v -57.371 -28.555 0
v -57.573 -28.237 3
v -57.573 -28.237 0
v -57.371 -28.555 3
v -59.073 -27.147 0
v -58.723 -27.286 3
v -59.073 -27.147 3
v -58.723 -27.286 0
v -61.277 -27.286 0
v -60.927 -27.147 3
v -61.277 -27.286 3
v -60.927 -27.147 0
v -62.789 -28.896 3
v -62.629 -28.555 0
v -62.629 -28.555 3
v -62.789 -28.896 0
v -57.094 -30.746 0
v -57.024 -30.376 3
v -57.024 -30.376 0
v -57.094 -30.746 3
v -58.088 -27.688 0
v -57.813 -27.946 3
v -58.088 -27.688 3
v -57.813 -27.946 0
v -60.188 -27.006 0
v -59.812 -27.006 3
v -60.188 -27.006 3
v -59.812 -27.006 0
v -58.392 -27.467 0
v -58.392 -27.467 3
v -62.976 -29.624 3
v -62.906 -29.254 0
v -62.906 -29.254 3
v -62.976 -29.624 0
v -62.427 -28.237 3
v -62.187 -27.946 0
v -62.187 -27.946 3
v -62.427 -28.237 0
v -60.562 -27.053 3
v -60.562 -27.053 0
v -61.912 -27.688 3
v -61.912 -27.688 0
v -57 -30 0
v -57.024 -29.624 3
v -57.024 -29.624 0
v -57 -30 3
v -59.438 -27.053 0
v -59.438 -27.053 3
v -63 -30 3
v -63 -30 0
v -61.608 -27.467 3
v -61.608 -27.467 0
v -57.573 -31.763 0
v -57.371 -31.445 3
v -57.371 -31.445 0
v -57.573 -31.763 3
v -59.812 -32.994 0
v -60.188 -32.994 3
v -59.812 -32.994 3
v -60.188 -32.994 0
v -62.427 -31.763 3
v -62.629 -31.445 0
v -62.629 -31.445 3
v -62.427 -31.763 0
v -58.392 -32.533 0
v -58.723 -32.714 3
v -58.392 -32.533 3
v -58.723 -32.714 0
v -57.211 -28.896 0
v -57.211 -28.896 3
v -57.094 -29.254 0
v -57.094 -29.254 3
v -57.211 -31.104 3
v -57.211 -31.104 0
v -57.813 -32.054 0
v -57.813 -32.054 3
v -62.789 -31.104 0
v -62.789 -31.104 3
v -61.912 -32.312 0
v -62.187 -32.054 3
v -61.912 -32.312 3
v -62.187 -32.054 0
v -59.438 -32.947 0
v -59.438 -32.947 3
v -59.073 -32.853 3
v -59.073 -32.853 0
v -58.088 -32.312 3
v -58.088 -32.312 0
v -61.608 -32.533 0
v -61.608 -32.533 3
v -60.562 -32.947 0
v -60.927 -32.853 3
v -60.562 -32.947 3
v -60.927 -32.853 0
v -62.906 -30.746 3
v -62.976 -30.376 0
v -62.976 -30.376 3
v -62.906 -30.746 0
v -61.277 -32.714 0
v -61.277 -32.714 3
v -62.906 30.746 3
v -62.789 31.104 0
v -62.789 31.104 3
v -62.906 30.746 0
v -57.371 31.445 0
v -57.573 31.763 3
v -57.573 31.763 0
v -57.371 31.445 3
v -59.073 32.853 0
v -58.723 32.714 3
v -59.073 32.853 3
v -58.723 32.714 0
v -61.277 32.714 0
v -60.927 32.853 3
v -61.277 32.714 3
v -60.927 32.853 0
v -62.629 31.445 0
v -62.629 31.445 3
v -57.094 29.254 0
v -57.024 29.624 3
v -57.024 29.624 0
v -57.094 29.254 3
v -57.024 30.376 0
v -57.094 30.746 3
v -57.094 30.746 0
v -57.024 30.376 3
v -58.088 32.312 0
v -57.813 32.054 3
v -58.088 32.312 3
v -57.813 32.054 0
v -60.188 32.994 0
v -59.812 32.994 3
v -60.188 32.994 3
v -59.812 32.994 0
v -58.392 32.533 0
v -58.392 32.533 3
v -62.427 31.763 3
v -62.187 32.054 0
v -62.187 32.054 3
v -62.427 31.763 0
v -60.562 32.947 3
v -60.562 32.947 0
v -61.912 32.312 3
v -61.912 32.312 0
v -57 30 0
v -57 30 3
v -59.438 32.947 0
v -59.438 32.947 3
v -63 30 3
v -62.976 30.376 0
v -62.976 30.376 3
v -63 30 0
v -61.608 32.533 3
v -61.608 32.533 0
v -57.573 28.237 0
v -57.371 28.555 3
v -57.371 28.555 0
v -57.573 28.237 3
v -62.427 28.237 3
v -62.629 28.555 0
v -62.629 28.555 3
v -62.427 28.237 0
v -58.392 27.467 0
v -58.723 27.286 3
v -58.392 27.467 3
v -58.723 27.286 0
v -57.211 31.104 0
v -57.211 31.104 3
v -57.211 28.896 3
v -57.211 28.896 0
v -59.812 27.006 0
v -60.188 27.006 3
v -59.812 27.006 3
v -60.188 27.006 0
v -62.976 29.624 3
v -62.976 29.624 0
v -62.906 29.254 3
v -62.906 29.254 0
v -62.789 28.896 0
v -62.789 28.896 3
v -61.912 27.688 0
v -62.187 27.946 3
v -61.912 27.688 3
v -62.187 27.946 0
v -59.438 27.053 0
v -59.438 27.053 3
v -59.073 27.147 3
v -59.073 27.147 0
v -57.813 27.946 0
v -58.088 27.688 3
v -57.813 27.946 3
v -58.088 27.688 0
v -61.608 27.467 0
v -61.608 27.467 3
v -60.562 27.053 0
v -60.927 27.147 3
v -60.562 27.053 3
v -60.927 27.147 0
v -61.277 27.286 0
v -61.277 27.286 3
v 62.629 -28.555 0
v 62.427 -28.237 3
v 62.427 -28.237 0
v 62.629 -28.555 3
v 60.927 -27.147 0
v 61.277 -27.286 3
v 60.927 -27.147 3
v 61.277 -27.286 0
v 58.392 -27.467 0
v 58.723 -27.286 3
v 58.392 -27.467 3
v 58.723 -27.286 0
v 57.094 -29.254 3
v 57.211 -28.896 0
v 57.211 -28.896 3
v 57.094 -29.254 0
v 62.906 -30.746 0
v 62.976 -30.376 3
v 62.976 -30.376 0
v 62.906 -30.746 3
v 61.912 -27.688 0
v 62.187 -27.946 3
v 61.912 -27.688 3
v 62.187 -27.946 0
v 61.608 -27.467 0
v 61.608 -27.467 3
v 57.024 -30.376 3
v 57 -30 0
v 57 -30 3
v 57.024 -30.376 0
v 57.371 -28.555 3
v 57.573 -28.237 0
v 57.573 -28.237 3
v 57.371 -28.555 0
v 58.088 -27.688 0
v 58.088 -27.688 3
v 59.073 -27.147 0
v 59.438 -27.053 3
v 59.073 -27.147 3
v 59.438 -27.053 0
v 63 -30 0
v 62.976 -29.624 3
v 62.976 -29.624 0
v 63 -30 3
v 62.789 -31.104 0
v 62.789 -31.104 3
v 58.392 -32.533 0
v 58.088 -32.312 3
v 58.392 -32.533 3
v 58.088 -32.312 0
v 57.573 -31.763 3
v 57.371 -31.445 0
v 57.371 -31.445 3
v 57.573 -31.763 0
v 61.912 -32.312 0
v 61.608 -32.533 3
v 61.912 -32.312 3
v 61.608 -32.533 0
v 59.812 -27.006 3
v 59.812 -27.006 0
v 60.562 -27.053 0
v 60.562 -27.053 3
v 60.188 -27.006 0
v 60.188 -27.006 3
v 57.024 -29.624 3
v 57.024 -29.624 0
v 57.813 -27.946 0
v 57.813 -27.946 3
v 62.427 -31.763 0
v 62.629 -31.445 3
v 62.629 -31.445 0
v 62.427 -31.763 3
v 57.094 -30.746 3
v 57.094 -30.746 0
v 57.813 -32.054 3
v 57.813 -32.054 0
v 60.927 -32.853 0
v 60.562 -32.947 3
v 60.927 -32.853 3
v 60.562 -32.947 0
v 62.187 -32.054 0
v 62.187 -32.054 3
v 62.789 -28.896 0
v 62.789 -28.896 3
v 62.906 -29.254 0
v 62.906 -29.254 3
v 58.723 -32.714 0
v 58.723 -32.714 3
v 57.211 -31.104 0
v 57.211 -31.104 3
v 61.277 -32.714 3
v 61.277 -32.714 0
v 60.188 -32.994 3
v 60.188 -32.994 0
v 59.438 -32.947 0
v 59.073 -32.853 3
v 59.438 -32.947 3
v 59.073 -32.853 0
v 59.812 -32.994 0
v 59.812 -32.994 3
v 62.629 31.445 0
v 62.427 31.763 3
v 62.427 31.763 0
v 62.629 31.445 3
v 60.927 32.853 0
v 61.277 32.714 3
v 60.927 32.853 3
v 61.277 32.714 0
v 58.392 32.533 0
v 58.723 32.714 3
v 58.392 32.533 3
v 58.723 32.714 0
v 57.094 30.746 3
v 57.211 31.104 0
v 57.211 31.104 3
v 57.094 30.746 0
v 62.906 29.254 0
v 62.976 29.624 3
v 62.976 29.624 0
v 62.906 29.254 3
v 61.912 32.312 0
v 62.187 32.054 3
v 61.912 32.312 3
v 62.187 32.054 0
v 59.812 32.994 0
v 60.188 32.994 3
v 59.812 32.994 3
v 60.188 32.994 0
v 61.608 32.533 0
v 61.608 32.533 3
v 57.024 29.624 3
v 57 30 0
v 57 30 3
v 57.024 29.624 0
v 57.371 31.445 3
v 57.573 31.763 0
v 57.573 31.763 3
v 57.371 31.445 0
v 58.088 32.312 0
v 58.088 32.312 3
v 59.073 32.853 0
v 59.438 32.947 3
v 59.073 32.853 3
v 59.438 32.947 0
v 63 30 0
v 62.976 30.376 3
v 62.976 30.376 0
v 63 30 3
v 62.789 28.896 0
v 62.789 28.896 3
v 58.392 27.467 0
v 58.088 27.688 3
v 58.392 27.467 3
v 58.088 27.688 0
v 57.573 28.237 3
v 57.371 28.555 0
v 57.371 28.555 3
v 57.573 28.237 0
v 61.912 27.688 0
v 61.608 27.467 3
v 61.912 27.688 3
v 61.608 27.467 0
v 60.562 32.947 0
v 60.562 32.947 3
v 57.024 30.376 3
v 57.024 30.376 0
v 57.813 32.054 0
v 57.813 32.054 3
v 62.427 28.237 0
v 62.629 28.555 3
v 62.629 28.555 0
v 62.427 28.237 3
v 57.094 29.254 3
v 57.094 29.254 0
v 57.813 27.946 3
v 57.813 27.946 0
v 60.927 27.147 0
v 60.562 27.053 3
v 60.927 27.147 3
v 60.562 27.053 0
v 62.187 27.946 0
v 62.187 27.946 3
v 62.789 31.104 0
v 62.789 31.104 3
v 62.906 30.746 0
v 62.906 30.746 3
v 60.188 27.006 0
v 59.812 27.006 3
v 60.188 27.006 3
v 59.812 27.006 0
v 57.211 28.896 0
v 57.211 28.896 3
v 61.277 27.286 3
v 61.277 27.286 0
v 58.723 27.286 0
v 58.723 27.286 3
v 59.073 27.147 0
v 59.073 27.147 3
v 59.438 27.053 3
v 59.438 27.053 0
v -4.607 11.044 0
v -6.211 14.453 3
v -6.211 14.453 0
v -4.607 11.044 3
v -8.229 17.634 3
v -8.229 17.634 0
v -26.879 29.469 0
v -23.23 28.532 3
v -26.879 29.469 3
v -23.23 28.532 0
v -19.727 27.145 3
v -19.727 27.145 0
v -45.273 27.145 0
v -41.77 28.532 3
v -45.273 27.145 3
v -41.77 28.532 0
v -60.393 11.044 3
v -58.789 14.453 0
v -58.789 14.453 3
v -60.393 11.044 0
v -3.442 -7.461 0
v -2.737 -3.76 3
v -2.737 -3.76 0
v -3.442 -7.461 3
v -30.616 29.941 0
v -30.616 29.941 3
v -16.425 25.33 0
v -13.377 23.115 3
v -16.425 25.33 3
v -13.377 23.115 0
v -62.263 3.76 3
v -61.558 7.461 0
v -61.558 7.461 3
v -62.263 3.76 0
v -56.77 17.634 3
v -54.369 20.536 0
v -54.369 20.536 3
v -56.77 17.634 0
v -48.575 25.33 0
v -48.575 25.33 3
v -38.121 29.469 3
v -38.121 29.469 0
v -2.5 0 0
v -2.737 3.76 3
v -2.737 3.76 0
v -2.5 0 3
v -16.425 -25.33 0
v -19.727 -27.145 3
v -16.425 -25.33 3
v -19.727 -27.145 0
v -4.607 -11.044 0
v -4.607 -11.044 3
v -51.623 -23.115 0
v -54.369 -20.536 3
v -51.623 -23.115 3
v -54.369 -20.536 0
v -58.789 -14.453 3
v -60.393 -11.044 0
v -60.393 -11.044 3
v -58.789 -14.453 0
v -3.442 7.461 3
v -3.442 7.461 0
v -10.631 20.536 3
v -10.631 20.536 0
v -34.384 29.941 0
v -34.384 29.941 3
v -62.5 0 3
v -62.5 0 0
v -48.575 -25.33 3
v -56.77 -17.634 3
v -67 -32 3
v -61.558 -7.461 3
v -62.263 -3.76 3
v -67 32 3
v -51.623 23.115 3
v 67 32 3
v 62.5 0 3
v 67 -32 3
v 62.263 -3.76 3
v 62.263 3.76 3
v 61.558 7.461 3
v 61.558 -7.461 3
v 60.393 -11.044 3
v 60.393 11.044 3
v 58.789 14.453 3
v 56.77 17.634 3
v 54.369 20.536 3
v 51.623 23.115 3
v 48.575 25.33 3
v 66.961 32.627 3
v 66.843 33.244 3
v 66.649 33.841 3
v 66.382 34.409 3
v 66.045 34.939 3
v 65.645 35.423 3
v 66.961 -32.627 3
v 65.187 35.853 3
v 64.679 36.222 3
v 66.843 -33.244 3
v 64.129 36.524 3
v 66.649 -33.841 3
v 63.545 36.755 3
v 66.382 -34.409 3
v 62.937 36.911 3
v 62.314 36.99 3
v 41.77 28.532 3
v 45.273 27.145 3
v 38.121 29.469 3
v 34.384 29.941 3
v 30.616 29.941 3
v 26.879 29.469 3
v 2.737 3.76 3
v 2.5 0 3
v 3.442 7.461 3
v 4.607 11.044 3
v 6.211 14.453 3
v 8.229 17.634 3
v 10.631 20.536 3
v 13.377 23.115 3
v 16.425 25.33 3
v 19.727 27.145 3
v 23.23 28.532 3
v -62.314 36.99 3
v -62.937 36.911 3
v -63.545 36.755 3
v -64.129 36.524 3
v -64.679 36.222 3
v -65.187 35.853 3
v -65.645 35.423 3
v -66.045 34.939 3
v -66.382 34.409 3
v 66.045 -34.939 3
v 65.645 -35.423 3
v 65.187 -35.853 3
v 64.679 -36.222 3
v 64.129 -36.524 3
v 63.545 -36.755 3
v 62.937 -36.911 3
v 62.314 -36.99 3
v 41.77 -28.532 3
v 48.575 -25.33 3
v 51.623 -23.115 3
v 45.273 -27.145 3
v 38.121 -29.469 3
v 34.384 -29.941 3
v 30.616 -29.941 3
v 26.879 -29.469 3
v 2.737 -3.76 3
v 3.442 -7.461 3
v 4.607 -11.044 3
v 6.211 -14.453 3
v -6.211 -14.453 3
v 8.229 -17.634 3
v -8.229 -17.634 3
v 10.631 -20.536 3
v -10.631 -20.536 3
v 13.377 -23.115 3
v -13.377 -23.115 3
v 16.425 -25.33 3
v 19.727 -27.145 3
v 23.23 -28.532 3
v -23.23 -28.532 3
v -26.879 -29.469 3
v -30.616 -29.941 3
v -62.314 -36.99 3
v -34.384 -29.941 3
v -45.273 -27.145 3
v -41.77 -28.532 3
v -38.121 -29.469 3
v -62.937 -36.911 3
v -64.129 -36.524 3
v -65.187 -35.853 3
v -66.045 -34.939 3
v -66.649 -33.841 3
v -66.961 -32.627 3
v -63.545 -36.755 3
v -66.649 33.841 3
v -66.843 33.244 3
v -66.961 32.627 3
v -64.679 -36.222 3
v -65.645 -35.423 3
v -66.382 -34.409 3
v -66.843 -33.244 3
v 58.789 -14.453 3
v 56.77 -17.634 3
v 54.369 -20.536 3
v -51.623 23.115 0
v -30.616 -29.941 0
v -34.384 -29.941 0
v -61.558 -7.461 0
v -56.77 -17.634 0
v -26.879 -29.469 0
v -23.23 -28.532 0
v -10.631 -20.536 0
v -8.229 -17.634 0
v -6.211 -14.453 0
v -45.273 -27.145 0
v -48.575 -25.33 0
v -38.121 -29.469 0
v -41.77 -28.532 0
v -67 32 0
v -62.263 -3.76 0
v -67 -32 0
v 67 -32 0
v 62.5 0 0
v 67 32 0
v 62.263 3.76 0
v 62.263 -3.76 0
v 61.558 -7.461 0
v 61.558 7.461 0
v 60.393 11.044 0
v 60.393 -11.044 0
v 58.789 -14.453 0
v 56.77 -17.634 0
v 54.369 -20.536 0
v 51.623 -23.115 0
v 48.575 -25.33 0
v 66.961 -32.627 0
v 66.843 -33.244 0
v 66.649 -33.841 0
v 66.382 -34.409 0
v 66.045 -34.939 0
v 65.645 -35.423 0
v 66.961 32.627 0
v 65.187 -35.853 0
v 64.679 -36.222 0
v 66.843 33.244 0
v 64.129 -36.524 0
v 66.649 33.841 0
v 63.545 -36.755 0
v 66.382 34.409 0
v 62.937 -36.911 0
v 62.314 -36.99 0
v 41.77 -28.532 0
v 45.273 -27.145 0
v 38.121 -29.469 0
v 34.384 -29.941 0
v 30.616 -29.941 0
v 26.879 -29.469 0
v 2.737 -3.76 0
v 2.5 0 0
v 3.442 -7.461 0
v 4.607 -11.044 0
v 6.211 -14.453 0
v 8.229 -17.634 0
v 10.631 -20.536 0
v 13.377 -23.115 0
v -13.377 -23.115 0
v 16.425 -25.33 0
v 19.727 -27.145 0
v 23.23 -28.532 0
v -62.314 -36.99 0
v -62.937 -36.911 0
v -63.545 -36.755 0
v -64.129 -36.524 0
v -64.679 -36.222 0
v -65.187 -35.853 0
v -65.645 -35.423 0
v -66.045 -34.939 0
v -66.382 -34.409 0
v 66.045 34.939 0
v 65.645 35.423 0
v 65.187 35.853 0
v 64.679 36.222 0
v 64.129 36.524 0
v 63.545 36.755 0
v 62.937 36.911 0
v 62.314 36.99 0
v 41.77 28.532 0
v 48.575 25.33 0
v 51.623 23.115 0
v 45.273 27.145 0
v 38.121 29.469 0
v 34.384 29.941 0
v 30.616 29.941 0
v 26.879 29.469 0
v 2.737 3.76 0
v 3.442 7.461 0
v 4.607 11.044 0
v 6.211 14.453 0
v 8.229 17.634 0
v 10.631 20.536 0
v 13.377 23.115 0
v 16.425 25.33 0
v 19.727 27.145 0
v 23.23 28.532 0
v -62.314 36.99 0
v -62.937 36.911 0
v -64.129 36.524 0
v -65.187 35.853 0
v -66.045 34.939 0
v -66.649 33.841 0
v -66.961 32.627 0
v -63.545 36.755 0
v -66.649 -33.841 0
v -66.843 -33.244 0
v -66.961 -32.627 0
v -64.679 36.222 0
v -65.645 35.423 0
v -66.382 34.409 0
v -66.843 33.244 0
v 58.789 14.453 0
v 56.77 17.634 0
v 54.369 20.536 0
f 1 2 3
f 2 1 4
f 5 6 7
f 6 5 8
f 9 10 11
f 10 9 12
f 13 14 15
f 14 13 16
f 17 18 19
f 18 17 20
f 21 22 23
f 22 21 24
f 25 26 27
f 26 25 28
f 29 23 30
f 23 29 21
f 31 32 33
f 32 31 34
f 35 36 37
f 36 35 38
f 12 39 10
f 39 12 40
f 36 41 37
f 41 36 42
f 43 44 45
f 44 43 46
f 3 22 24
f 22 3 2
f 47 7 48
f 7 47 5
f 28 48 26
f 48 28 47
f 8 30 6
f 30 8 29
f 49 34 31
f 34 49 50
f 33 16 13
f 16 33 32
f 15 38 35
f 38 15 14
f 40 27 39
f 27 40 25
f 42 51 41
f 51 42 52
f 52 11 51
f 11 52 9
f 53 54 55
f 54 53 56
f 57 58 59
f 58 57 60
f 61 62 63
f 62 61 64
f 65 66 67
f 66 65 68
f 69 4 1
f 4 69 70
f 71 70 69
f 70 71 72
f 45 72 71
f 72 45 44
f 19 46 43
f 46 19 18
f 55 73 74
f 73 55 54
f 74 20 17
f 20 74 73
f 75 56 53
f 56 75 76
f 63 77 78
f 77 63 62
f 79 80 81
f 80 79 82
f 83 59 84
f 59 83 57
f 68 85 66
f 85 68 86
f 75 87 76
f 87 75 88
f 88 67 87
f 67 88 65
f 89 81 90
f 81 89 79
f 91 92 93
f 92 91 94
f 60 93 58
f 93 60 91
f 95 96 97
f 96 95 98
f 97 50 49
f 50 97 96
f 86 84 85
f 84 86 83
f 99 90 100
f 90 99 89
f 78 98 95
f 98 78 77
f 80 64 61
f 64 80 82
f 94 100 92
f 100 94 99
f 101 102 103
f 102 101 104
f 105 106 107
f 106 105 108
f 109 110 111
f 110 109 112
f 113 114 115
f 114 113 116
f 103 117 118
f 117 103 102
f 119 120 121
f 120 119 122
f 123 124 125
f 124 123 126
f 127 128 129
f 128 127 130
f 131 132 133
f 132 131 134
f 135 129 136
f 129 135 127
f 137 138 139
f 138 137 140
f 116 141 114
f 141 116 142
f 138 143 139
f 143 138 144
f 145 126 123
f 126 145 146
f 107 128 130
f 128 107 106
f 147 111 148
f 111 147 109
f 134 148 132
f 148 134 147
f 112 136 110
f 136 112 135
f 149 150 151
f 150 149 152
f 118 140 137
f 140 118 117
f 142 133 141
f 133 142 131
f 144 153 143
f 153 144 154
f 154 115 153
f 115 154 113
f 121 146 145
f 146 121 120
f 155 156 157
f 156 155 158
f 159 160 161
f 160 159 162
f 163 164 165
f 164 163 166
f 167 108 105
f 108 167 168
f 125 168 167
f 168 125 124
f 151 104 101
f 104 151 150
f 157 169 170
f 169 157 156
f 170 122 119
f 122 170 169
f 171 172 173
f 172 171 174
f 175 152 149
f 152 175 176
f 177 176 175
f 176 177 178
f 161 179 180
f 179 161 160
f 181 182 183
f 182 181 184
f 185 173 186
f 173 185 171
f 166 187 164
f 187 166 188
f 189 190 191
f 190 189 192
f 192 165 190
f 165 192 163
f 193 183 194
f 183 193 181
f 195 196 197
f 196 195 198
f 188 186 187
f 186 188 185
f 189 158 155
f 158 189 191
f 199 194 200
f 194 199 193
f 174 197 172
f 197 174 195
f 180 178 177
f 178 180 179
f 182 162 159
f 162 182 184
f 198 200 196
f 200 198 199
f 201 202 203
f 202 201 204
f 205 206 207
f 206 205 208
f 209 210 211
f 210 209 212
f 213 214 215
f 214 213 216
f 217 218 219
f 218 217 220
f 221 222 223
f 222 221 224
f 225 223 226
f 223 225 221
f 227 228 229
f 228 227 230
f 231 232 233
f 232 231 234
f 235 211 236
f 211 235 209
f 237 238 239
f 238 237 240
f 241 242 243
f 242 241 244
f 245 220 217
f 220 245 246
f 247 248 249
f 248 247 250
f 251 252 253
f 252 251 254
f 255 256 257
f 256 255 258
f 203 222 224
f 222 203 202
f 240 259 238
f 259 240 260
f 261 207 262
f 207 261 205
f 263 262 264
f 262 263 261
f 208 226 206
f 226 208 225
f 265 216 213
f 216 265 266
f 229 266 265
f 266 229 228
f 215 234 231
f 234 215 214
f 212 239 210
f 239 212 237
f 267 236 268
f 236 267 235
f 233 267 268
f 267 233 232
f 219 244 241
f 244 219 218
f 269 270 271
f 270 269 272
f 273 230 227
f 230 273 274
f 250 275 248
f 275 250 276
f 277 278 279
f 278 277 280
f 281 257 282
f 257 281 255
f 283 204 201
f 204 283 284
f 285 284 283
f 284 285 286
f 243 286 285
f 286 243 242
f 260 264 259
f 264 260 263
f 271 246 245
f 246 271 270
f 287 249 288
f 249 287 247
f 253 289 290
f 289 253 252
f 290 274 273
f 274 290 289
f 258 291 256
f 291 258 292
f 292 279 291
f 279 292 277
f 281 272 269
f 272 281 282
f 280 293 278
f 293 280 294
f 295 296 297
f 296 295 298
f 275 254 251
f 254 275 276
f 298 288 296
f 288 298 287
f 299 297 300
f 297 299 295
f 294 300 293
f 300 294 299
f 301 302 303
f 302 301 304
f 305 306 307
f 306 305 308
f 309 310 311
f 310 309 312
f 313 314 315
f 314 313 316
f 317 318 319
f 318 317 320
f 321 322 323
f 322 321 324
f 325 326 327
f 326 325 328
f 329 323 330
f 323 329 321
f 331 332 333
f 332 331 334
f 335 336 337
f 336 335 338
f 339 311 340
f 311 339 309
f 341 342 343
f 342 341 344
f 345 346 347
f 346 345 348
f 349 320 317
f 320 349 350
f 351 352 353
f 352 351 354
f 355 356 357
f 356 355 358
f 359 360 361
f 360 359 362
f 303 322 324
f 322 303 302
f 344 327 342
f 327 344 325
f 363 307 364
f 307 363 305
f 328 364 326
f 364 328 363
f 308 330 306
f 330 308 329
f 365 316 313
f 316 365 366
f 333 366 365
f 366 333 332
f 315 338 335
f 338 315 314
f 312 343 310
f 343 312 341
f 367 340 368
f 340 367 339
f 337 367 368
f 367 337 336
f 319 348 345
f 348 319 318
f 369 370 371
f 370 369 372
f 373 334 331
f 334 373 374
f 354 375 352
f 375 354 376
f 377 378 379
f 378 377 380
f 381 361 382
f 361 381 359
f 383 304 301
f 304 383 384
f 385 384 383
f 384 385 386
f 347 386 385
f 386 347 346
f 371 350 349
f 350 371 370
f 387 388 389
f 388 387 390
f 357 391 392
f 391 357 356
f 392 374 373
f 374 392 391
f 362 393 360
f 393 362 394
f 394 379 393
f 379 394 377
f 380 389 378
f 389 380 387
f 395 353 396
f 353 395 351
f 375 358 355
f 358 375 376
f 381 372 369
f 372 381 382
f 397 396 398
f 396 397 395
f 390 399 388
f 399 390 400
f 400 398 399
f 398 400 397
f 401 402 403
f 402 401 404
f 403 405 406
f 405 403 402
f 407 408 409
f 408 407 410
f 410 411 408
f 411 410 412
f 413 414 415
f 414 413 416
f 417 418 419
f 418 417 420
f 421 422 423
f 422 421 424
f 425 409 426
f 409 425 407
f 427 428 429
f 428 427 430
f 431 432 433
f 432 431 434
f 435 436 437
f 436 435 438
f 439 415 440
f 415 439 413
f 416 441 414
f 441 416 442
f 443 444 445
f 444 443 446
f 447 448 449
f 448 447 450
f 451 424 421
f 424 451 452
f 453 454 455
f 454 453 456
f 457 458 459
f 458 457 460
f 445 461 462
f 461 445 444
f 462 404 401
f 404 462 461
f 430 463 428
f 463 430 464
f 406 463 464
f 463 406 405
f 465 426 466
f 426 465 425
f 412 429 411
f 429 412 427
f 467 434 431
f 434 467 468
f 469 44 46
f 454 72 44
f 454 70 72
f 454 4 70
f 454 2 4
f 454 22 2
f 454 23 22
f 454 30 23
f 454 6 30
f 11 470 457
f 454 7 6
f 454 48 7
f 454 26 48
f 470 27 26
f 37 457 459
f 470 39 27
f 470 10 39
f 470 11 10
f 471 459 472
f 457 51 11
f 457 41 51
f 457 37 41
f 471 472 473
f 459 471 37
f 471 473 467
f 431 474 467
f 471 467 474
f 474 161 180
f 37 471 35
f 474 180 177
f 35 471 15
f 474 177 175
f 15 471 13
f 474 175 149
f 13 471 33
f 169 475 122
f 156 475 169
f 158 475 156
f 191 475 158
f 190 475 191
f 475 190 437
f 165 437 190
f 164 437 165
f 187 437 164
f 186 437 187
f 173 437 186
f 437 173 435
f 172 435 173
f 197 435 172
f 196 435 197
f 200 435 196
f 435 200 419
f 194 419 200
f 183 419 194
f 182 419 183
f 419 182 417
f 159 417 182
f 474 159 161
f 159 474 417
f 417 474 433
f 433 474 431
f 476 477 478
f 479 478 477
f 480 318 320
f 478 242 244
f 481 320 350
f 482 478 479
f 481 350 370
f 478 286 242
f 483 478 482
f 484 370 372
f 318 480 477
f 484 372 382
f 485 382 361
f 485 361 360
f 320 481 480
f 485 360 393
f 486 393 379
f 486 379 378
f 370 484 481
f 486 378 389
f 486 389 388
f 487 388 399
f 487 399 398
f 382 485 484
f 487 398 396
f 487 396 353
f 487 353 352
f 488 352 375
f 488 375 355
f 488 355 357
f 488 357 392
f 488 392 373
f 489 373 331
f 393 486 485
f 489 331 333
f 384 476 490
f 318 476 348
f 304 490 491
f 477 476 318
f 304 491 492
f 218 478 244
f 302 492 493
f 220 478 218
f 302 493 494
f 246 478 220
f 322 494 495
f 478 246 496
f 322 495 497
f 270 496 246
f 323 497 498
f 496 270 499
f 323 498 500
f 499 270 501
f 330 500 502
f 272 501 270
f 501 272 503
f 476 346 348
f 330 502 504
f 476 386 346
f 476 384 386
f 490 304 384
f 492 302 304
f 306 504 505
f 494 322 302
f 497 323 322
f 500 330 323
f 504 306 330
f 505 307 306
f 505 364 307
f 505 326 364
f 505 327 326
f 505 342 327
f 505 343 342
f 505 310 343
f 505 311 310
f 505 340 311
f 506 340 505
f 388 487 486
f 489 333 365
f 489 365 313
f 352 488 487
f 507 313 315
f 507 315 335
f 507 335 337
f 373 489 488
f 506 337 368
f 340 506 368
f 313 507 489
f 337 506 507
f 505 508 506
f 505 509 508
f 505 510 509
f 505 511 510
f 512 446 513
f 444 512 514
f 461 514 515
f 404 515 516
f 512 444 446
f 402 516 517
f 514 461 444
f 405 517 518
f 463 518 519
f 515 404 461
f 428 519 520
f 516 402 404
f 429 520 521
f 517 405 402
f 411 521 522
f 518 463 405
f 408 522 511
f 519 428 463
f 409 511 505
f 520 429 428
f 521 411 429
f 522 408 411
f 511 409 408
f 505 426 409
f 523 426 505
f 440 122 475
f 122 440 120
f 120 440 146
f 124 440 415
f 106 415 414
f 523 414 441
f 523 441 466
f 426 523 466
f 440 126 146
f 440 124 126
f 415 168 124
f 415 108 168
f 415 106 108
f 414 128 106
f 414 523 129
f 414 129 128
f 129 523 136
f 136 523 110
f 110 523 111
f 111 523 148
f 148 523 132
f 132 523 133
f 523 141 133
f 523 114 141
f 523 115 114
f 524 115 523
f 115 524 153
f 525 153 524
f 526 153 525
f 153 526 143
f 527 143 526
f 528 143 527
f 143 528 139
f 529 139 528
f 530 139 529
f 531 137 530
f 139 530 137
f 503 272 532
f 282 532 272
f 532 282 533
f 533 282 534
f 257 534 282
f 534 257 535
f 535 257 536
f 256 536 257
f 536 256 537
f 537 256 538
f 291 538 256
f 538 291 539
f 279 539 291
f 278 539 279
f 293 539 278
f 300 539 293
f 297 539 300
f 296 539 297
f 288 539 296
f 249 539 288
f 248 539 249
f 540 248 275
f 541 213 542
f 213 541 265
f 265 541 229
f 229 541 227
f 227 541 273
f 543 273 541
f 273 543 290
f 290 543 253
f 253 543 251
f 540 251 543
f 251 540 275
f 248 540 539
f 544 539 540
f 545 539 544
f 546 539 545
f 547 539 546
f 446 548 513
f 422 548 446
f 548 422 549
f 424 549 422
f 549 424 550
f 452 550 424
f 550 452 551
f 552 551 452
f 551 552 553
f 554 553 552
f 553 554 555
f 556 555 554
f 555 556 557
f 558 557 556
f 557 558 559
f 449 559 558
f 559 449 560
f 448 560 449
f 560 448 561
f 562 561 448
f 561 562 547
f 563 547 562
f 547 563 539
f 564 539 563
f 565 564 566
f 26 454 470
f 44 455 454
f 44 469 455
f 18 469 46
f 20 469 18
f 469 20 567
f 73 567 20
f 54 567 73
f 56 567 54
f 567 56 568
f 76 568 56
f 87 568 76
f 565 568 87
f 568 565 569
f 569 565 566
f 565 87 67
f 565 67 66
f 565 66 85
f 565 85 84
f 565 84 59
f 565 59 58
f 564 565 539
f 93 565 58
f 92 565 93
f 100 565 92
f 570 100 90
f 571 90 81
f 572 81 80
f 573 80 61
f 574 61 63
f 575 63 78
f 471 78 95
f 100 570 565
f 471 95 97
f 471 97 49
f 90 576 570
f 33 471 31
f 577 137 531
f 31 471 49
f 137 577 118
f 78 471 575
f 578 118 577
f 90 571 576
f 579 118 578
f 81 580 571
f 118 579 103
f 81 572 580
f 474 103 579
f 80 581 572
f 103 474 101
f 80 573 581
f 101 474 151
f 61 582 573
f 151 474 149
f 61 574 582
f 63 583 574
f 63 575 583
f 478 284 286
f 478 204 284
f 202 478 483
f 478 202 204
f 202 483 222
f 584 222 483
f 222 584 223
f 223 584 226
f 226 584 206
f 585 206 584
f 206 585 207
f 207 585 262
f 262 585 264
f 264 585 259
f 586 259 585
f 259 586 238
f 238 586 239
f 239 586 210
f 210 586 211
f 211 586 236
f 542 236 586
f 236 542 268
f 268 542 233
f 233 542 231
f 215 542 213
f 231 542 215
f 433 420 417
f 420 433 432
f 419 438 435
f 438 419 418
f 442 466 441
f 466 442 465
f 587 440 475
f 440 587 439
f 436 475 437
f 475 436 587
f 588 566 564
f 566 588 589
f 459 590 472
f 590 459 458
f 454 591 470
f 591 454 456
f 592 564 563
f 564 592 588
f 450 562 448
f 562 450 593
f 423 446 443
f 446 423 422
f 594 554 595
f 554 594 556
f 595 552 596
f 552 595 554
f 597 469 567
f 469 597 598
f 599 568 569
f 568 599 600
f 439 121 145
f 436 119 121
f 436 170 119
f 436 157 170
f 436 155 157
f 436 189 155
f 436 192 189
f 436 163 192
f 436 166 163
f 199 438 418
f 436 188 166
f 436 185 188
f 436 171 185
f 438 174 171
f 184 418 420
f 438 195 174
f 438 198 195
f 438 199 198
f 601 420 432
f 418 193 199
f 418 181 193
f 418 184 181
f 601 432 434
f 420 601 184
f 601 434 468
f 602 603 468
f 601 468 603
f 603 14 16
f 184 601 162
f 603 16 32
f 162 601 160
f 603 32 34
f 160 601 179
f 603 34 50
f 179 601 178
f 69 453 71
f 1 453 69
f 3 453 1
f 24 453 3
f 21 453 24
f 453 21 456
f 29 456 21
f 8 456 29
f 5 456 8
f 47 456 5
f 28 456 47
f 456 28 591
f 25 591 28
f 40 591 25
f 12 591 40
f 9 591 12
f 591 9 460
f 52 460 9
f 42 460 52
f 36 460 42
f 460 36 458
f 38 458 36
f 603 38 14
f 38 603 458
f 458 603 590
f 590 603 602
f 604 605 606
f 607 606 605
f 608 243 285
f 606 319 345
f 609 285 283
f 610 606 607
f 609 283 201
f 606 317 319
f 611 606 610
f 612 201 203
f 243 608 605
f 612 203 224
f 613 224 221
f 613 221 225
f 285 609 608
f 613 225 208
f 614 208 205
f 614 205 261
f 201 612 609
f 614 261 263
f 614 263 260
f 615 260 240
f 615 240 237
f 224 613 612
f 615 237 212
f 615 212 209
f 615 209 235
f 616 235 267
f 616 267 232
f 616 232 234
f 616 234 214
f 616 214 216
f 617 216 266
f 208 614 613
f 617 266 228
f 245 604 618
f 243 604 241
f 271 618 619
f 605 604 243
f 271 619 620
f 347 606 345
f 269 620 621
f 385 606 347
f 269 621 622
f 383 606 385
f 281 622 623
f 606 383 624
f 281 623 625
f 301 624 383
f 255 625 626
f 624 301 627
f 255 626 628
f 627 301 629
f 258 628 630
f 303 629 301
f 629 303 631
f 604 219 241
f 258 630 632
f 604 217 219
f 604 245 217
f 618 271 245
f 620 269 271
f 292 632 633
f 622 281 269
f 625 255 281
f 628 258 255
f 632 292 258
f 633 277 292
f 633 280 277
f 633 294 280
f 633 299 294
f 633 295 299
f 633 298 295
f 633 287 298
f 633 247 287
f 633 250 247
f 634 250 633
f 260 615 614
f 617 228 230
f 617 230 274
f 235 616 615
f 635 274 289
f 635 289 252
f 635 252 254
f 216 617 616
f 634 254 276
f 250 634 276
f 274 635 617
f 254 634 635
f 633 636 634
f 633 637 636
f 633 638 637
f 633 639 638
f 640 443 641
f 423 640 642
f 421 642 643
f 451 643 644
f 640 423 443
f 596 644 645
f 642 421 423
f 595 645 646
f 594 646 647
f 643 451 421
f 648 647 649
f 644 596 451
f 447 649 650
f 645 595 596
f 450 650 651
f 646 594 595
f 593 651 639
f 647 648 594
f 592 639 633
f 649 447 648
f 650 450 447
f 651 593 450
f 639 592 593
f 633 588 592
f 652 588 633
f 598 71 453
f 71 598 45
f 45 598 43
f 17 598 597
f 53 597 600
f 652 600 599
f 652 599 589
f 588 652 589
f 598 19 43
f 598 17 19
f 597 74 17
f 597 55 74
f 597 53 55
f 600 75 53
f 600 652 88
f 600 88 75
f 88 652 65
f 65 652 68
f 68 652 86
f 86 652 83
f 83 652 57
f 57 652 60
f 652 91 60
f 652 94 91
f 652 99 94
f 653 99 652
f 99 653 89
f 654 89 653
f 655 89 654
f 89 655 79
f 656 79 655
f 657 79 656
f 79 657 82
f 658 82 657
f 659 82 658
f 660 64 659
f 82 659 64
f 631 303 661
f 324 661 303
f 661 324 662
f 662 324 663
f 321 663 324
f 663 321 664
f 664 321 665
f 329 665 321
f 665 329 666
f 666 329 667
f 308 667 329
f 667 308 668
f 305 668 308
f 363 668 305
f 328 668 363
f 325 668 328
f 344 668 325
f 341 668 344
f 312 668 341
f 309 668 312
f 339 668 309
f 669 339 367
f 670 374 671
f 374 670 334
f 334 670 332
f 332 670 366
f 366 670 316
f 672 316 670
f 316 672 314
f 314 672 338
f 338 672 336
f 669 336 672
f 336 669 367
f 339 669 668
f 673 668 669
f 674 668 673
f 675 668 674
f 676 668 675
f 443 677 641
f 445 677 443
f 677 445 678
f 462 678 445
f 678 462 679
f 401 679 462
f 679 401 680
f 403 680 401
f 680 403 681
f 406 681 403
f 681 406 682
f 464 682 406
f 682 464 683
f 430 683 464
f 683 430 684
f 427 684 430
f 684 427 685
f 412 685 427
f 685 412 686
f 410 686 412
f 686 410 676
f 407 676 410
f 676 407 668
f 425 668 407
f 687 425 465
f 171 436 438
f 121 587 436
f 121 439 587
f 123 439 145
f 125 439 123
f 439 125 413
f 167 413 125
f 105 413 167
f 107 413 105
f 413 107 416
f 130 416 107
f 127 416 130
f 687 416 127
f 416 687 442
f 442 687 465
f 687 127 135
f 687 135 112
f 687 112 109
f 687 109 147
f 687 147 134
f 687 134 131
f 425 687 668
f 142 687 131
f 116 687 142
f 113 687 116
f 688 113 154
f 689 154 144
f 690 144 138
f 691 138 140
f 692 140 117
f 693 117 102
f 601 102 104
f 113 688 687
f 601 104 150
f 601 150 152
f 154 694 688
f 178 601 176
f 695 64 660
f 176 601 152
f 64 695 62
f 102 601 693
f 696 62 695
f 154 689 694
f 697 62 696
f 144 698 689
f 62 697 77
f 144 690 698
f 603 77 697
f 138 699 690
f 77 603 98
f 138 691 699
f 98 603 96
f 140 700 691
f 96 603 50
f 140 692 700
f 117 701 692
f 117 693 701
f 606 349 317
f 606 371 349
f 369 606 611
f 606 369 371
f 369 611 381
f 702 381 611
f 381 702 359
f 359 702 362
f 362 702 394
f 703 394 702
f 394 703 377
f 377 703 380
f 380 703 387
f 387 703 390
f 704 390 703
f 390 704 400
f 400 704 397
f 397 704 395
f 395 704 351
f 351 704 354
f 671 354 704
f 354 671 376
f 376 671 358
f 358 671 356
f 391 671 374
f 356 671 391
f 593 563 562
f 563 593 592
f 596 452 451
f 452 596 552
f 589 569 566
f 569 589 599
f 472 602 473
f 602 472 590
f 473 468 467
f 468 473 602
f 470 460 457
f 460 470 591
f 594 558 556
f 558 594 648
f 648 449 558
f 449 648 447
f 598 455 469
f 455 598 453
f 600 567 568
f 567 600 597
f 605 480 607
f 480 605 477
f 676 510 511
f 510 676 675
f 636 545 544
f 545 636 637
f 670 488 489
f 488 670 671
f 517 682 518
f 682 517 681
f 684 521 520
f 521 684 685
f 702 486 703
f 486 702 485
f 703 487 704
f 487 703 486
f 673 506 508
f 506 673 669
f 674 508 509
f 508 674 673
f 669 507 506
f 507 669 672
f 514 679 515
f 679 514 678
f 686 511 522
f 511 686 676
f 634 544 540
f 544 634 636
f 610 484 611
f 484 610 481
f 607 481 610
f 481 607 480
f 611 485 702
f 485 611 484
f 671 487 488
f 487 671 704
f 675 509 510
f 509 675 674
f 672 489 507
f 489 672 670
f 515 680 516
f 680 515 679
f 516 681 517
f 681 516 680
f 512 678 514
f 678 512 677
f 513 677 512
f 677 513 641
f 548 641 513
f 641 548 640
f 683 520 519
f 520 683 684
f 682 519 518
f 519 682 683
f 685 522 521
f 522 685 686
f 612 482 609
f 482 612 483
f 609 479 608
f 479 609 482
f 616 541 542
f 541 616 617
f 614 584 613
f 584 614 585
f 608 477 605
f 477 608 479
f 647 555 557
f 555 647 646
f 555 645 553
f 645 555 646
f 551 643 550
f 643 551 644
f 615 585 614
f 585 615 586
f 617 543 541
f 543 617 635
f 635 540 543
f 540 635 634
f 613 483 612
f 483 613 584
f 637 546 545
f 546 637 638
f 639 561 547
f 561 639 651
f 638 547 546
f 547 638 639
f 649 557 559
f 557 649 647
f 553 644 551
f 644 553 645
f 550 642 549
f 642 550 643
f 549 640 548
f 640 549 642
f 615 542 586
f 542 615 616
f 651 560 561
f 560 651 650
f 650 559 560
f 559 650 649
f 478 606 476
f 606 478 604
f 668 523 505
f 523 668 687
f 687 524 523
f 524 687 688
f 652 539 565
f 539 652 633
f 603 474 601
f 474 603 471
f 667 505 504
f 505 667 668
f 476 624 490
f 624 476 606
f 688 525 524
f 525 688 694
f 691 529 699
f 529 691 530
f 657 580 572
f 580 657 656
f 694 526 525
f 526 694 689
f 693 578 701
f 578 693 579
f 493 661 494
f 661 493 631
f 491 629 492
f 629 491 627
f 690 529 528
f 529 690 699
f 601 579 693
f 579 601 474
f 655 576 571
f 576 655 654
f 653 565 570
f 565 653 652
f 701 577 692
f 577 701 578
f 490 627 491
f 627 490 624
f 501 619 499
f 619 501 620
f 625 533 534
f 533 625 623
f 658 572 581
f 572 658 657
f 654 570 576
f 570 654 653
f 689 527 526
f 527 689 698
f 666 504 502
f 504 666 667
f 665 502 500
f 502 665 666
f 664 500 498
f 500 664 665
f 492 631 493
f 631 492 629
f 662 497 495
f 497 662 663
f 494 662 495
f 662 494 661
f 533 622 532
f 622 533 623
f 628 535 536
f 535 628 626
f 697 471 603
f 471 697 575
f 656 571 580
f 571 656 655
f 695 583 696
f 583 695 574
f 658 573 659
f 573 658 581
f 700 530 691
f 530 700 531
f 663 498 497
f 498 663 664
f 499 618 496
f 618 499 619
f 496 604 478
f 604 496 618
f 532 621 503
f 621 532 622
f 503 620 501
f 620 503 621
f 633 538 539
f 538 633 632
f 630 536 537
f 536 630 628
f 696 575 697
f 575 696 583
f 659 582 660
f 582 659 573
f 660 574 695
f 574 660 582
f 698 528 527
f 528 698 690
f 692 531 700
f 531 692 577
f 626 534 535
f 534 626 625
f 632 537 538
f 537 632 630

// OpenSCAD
$fn = 50;


difference() {
	union() {
		hull() {
			translate(v = [-62.0000000000, 32.0000000000, 0]) {
				cylinder(h = 3, r = 5);
			}
			translate(v = [62.0000000000, 32.0000000000, 0]) {
				cylinder(h = 3, r = 5);
			}
			translate(v = [-62.0000000000, -32.0000000000, 0]) {
				cylinder(h = 3, r = 5);
			}
			translate(v = [62.0000000000, -32.0000000000, 0]) {
				cylinder(h = 3, r = 5);
			}
		}
	}
	union() {
		#translate(v = [-60.0000000000, -30.0000000000, -100.0000000000]) {
			cylinder(h = 200, r = 3.0000000000);
		}
		#translate(v = [-60.0000000000, 30.0000000000, -100.0000000000]) {
			cylinder(h = 200, r = 3.0000000000);
		}
		#translate(v = [60.0000000000, -30.0000000000, -100.0000000000]) {
			cylinder(h = 200, r = 3.0000000000);
		}
		#translate(v = [60.0000000000, 30.0000000000, -100.0000000000]) {
			cylinder(h = 200, r = 3.0000000000);
		}
		#translate(v = [-32.5000000000, 0, 0]) {
			cylinder(h = 3, r = 30.0000000000);
		}
		#translate(v = [32.5000000000, 0, 0]) {
			cylinder(h = 3, r = 30.0000000000);
		}
	}
}
